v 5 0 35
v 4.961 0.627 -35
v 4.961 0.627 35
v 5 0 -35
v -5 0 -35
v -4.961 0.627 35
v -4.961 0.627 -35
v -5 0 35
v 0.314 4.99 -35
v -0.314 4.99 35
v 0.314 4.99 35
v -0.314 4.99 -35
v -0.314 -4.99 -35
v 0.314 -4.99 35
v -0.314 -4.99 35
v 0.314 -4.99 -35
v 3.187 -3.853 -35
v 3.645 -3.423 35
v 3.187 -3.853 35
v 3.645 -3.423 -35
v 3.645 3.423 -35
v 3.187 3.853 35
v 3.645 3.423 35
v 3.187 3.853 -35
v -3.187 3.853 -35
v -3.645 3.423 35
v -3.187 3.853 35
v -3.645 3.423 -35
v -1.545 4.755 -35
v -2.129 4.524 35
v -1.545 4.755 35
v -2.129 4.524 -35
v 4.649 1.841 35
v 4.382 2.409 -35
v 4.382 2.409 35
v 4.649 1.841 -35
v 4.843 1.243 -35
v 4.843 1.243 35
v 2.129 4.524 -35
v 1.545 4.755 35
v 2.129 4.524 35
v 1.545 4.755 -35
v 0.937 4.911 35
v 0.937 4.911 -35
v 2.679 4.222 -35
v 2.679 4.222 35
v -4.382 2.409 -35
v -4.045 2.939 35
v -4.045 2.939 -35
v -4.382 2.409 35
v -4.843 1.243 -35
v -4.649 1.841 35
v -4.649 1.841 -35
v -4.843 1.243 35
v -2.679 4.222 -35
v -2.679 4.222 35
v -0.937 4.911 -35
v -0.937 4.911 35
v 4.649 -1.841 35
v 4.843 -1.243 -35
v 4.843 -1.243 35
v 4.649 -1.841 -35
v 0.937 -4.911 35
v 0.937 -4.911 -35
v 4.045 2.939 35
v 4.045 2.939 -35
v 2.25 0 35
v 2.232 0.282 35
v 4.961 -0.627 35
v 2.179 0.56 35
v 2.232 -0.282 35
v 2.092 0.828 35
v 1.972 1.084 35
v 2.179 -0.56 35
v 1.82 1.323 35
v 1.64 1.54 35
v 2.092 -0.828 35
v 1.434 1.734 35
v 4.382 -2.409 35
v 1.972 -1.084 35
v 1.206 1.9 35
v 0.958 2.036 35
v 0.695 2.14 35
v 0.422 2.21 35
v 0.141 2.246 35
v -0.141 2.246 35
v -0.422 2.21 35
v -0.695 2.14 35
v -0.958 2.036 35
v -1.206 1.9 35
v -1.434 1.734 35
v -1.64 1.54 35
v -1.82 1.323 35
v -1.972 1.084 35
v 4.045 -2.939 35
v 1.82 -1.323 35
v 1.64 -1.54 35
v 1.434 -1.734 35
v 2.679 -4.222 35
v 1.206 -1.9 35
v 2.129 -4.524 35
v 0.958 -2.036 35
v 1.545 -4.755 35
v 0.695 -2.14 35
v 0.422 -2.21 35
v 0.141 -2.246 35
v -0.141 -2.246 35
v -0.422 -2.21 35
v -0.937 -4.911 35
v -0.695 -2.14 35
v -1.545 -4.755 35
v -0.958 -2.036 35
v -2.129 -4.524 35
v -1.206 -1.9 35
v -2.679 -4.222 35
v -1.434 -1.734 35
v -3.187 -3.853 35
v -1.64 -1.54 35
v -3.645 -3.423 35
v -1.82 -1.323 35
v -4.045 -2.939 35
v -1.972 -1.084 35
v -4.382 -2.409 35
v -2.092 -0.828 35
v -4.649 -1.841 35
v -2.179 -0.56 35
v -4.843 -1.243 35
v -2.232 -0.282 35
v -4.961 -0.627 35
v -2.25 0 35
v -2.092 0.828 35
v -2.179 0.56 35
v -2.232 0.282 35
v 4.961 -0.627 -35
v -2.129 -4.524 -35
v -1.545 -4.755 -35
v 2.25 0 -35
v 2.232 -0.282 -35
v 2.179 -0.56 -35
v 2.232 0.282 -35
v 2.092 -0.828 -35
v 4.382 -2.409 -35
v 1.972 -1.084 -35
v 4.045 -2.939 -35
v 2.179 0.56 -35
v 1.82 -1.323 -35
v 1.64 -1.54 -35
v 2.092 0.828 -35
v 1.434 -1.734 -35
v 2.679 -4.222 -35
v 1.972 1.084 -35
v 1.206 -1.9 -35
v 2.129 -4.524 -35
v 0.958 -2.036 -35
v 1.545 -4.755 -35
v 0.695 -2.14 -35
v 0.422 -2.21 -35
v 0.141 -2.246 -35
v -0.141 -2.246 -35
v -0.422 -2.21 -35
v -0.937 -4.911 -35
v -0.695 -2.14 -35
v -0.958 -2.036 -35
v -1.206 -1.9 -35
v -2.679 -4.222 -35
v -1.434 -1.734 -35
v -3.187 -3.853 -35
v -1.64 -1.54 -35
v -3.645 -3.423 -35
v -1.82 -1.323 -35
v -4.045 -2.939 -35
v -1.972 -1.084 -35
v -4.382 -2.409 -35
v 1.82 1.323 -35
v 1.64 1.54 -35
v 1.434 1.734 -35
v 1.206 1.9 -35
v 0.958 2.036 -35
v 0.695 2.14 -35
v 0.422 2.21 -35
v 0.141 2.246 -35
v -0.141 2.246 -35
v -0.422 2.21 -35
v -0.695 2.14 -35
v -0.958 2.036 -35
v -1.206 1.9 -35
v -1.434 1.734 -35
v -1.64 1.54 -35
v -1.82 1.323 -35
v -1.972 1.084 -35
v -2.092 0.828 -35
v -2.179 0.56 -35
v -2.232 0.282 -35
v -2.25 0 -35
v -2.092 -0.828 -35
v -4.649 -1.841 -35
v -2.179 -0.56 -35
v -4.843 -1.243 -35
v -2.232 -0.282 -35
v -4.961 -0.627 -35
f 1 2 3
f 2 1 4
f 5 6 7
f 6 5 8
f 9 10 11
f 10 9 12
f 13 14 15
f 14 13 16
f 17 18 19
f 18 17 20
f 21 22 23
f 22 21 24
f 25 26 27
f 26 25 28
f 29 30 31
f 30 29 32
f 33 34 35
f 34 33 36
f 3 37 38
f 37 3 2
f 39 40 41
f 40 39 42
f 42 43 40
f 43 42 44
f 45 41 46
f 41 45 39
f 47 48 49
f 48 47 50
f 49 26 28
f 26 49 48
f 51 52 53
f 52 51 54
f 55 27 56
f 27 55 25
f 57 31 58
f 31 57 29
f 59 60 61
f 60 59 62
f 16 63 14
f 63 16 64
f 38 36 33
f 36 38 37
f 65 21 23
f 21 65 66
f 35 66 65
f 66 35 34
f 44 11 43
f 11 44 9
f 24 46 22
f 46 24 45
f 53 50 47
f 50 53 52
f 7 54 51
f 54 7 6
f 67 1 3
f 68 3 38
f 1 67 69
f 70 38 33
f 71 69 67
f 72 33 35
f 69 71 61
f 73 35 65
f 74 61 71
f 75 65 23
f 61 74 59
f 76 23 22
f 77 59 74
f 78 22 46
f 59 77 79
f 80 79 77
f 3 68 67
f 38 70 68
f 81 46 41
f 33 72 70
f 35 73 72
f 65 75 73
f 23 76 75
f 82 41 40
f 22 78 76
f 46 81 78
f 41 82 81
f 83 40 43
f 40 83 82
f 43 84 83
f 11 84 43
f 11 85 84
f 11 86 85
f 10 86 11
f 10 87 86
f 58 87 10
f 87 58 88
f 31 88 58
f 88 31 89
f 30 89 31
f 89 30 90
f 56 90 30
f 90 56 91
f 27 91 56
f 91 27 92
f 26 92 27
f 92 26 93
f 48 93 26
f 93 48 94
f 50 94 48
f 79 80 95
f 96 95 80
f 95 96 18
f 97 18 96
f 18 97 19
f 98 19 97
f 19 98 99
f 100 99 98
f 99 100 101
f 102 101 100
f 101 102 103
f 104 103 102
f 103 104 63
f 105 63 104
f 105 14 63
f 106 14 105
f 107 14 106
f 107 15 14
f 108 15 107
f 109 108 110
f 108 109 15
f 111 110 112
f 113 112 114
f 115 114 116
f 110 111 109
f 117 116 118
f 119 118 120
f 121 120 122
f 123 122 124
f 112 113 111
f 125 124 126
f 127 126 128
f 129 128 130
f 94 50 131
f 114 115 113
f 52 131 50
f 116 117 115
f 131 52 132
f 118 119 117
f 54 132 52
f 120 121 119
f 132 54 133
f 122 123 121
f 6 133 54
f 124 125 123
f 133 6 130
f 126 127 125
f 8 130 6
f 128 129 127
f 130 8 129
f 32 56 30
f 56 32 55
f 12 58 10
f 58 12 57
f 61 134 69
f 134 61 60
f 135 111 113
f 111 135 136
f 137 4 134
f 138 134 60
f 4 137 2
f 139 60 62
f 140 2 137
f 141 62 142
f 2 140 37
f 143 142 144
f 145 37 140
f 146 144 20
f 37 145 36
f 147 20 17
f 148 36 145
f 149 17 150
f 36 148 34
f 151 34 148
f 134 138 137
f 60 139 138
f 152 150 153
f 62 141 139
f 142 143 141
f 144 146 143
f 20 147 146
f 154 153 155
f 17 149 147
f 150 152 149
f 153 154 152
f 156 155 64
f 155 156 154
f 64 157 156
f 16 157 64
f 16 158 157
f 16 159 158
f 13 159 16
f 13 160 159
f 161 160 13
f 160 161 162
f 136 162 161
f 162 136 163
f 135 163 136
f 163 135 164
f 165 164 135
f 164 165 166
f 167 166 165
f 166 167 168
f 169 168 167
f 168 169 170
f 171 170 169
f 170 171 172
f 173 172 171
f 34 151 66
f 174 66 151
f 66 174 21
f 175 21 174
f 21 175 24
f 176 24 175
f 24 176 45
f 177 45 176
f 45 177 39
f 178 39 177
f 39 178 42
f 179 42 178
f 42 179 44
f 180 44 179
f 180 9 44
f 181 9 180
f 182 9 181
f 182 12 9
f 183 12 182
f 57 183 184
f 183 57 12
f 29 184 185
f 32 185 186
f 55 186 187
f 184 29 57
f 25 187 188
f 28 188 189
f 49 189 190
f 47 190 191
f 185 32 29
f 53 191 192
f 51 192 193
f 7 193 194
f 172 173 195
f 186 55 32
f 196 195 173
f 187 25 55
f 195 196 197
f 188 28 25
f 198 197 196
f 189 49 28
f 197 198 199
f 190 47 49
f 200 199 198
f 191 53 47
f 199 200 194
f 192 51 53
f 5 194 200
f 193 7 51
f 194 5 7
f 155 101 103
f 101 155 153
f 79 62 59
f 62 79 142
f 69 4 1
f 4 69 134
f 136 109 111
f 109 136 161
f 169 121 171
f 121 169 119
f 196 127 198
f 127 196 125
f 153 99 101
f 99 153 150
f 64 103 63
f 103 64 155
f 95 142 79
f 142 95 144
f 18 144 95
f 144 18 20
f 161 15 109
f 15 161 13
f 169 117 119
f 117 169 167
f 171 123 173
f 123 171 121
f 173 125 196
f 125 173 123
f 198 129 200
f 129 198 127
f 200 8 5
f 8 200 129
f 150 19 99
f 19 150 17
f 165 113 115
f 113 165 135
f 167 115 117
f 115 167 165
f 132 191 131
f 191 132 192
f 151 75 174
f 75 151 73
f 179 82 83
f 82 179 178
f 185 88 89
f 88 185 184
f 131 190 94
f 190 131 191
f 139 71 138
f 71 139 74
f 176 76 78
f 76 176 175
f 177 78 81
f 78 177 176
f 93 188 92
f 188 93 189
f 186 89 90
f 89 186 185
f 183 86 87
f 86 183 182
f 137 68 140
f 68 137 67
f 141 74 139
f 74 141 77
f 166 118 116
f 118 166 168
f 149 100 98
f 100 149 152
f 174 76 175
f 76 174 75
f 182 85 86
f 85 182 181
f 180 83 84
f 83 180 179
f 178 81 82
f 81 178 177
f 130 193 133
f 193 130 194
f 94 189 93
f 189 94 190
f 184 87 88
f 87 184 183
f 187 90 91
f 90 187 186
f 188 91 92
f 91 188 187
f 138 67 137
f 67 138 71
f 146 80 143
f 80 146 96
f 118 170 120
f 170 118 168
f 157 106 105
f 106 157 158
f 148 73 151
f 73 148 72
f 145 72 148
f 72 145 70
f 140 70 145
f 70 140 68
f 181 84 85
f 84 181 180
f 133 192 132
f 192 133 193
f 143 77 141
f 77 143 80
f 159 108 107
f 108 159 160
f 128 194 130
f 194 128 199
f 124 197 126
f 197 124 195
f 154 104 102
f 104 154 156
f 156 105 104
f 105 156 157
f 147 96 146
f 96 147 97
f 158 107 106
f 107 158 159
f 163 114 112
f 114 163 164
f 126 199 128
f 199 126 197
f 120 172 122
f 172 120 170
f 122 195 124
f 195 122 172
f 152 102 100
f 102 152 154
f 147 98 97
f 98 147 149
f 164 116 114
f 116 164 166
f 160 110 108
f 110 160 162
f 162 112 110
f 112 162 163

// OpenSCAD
$fn = 50;


difference() {
	union() {
		translate(v = [0, 0, -35.0000000000]) {
			cylinder(h = 70, r = 5.0000000000);
		}
	}
	union() {
		translate(v = [0, 0, -100.0000000000]) {
			cylinder(h = 200, r = 2.2500000000);
		}
	}
}
